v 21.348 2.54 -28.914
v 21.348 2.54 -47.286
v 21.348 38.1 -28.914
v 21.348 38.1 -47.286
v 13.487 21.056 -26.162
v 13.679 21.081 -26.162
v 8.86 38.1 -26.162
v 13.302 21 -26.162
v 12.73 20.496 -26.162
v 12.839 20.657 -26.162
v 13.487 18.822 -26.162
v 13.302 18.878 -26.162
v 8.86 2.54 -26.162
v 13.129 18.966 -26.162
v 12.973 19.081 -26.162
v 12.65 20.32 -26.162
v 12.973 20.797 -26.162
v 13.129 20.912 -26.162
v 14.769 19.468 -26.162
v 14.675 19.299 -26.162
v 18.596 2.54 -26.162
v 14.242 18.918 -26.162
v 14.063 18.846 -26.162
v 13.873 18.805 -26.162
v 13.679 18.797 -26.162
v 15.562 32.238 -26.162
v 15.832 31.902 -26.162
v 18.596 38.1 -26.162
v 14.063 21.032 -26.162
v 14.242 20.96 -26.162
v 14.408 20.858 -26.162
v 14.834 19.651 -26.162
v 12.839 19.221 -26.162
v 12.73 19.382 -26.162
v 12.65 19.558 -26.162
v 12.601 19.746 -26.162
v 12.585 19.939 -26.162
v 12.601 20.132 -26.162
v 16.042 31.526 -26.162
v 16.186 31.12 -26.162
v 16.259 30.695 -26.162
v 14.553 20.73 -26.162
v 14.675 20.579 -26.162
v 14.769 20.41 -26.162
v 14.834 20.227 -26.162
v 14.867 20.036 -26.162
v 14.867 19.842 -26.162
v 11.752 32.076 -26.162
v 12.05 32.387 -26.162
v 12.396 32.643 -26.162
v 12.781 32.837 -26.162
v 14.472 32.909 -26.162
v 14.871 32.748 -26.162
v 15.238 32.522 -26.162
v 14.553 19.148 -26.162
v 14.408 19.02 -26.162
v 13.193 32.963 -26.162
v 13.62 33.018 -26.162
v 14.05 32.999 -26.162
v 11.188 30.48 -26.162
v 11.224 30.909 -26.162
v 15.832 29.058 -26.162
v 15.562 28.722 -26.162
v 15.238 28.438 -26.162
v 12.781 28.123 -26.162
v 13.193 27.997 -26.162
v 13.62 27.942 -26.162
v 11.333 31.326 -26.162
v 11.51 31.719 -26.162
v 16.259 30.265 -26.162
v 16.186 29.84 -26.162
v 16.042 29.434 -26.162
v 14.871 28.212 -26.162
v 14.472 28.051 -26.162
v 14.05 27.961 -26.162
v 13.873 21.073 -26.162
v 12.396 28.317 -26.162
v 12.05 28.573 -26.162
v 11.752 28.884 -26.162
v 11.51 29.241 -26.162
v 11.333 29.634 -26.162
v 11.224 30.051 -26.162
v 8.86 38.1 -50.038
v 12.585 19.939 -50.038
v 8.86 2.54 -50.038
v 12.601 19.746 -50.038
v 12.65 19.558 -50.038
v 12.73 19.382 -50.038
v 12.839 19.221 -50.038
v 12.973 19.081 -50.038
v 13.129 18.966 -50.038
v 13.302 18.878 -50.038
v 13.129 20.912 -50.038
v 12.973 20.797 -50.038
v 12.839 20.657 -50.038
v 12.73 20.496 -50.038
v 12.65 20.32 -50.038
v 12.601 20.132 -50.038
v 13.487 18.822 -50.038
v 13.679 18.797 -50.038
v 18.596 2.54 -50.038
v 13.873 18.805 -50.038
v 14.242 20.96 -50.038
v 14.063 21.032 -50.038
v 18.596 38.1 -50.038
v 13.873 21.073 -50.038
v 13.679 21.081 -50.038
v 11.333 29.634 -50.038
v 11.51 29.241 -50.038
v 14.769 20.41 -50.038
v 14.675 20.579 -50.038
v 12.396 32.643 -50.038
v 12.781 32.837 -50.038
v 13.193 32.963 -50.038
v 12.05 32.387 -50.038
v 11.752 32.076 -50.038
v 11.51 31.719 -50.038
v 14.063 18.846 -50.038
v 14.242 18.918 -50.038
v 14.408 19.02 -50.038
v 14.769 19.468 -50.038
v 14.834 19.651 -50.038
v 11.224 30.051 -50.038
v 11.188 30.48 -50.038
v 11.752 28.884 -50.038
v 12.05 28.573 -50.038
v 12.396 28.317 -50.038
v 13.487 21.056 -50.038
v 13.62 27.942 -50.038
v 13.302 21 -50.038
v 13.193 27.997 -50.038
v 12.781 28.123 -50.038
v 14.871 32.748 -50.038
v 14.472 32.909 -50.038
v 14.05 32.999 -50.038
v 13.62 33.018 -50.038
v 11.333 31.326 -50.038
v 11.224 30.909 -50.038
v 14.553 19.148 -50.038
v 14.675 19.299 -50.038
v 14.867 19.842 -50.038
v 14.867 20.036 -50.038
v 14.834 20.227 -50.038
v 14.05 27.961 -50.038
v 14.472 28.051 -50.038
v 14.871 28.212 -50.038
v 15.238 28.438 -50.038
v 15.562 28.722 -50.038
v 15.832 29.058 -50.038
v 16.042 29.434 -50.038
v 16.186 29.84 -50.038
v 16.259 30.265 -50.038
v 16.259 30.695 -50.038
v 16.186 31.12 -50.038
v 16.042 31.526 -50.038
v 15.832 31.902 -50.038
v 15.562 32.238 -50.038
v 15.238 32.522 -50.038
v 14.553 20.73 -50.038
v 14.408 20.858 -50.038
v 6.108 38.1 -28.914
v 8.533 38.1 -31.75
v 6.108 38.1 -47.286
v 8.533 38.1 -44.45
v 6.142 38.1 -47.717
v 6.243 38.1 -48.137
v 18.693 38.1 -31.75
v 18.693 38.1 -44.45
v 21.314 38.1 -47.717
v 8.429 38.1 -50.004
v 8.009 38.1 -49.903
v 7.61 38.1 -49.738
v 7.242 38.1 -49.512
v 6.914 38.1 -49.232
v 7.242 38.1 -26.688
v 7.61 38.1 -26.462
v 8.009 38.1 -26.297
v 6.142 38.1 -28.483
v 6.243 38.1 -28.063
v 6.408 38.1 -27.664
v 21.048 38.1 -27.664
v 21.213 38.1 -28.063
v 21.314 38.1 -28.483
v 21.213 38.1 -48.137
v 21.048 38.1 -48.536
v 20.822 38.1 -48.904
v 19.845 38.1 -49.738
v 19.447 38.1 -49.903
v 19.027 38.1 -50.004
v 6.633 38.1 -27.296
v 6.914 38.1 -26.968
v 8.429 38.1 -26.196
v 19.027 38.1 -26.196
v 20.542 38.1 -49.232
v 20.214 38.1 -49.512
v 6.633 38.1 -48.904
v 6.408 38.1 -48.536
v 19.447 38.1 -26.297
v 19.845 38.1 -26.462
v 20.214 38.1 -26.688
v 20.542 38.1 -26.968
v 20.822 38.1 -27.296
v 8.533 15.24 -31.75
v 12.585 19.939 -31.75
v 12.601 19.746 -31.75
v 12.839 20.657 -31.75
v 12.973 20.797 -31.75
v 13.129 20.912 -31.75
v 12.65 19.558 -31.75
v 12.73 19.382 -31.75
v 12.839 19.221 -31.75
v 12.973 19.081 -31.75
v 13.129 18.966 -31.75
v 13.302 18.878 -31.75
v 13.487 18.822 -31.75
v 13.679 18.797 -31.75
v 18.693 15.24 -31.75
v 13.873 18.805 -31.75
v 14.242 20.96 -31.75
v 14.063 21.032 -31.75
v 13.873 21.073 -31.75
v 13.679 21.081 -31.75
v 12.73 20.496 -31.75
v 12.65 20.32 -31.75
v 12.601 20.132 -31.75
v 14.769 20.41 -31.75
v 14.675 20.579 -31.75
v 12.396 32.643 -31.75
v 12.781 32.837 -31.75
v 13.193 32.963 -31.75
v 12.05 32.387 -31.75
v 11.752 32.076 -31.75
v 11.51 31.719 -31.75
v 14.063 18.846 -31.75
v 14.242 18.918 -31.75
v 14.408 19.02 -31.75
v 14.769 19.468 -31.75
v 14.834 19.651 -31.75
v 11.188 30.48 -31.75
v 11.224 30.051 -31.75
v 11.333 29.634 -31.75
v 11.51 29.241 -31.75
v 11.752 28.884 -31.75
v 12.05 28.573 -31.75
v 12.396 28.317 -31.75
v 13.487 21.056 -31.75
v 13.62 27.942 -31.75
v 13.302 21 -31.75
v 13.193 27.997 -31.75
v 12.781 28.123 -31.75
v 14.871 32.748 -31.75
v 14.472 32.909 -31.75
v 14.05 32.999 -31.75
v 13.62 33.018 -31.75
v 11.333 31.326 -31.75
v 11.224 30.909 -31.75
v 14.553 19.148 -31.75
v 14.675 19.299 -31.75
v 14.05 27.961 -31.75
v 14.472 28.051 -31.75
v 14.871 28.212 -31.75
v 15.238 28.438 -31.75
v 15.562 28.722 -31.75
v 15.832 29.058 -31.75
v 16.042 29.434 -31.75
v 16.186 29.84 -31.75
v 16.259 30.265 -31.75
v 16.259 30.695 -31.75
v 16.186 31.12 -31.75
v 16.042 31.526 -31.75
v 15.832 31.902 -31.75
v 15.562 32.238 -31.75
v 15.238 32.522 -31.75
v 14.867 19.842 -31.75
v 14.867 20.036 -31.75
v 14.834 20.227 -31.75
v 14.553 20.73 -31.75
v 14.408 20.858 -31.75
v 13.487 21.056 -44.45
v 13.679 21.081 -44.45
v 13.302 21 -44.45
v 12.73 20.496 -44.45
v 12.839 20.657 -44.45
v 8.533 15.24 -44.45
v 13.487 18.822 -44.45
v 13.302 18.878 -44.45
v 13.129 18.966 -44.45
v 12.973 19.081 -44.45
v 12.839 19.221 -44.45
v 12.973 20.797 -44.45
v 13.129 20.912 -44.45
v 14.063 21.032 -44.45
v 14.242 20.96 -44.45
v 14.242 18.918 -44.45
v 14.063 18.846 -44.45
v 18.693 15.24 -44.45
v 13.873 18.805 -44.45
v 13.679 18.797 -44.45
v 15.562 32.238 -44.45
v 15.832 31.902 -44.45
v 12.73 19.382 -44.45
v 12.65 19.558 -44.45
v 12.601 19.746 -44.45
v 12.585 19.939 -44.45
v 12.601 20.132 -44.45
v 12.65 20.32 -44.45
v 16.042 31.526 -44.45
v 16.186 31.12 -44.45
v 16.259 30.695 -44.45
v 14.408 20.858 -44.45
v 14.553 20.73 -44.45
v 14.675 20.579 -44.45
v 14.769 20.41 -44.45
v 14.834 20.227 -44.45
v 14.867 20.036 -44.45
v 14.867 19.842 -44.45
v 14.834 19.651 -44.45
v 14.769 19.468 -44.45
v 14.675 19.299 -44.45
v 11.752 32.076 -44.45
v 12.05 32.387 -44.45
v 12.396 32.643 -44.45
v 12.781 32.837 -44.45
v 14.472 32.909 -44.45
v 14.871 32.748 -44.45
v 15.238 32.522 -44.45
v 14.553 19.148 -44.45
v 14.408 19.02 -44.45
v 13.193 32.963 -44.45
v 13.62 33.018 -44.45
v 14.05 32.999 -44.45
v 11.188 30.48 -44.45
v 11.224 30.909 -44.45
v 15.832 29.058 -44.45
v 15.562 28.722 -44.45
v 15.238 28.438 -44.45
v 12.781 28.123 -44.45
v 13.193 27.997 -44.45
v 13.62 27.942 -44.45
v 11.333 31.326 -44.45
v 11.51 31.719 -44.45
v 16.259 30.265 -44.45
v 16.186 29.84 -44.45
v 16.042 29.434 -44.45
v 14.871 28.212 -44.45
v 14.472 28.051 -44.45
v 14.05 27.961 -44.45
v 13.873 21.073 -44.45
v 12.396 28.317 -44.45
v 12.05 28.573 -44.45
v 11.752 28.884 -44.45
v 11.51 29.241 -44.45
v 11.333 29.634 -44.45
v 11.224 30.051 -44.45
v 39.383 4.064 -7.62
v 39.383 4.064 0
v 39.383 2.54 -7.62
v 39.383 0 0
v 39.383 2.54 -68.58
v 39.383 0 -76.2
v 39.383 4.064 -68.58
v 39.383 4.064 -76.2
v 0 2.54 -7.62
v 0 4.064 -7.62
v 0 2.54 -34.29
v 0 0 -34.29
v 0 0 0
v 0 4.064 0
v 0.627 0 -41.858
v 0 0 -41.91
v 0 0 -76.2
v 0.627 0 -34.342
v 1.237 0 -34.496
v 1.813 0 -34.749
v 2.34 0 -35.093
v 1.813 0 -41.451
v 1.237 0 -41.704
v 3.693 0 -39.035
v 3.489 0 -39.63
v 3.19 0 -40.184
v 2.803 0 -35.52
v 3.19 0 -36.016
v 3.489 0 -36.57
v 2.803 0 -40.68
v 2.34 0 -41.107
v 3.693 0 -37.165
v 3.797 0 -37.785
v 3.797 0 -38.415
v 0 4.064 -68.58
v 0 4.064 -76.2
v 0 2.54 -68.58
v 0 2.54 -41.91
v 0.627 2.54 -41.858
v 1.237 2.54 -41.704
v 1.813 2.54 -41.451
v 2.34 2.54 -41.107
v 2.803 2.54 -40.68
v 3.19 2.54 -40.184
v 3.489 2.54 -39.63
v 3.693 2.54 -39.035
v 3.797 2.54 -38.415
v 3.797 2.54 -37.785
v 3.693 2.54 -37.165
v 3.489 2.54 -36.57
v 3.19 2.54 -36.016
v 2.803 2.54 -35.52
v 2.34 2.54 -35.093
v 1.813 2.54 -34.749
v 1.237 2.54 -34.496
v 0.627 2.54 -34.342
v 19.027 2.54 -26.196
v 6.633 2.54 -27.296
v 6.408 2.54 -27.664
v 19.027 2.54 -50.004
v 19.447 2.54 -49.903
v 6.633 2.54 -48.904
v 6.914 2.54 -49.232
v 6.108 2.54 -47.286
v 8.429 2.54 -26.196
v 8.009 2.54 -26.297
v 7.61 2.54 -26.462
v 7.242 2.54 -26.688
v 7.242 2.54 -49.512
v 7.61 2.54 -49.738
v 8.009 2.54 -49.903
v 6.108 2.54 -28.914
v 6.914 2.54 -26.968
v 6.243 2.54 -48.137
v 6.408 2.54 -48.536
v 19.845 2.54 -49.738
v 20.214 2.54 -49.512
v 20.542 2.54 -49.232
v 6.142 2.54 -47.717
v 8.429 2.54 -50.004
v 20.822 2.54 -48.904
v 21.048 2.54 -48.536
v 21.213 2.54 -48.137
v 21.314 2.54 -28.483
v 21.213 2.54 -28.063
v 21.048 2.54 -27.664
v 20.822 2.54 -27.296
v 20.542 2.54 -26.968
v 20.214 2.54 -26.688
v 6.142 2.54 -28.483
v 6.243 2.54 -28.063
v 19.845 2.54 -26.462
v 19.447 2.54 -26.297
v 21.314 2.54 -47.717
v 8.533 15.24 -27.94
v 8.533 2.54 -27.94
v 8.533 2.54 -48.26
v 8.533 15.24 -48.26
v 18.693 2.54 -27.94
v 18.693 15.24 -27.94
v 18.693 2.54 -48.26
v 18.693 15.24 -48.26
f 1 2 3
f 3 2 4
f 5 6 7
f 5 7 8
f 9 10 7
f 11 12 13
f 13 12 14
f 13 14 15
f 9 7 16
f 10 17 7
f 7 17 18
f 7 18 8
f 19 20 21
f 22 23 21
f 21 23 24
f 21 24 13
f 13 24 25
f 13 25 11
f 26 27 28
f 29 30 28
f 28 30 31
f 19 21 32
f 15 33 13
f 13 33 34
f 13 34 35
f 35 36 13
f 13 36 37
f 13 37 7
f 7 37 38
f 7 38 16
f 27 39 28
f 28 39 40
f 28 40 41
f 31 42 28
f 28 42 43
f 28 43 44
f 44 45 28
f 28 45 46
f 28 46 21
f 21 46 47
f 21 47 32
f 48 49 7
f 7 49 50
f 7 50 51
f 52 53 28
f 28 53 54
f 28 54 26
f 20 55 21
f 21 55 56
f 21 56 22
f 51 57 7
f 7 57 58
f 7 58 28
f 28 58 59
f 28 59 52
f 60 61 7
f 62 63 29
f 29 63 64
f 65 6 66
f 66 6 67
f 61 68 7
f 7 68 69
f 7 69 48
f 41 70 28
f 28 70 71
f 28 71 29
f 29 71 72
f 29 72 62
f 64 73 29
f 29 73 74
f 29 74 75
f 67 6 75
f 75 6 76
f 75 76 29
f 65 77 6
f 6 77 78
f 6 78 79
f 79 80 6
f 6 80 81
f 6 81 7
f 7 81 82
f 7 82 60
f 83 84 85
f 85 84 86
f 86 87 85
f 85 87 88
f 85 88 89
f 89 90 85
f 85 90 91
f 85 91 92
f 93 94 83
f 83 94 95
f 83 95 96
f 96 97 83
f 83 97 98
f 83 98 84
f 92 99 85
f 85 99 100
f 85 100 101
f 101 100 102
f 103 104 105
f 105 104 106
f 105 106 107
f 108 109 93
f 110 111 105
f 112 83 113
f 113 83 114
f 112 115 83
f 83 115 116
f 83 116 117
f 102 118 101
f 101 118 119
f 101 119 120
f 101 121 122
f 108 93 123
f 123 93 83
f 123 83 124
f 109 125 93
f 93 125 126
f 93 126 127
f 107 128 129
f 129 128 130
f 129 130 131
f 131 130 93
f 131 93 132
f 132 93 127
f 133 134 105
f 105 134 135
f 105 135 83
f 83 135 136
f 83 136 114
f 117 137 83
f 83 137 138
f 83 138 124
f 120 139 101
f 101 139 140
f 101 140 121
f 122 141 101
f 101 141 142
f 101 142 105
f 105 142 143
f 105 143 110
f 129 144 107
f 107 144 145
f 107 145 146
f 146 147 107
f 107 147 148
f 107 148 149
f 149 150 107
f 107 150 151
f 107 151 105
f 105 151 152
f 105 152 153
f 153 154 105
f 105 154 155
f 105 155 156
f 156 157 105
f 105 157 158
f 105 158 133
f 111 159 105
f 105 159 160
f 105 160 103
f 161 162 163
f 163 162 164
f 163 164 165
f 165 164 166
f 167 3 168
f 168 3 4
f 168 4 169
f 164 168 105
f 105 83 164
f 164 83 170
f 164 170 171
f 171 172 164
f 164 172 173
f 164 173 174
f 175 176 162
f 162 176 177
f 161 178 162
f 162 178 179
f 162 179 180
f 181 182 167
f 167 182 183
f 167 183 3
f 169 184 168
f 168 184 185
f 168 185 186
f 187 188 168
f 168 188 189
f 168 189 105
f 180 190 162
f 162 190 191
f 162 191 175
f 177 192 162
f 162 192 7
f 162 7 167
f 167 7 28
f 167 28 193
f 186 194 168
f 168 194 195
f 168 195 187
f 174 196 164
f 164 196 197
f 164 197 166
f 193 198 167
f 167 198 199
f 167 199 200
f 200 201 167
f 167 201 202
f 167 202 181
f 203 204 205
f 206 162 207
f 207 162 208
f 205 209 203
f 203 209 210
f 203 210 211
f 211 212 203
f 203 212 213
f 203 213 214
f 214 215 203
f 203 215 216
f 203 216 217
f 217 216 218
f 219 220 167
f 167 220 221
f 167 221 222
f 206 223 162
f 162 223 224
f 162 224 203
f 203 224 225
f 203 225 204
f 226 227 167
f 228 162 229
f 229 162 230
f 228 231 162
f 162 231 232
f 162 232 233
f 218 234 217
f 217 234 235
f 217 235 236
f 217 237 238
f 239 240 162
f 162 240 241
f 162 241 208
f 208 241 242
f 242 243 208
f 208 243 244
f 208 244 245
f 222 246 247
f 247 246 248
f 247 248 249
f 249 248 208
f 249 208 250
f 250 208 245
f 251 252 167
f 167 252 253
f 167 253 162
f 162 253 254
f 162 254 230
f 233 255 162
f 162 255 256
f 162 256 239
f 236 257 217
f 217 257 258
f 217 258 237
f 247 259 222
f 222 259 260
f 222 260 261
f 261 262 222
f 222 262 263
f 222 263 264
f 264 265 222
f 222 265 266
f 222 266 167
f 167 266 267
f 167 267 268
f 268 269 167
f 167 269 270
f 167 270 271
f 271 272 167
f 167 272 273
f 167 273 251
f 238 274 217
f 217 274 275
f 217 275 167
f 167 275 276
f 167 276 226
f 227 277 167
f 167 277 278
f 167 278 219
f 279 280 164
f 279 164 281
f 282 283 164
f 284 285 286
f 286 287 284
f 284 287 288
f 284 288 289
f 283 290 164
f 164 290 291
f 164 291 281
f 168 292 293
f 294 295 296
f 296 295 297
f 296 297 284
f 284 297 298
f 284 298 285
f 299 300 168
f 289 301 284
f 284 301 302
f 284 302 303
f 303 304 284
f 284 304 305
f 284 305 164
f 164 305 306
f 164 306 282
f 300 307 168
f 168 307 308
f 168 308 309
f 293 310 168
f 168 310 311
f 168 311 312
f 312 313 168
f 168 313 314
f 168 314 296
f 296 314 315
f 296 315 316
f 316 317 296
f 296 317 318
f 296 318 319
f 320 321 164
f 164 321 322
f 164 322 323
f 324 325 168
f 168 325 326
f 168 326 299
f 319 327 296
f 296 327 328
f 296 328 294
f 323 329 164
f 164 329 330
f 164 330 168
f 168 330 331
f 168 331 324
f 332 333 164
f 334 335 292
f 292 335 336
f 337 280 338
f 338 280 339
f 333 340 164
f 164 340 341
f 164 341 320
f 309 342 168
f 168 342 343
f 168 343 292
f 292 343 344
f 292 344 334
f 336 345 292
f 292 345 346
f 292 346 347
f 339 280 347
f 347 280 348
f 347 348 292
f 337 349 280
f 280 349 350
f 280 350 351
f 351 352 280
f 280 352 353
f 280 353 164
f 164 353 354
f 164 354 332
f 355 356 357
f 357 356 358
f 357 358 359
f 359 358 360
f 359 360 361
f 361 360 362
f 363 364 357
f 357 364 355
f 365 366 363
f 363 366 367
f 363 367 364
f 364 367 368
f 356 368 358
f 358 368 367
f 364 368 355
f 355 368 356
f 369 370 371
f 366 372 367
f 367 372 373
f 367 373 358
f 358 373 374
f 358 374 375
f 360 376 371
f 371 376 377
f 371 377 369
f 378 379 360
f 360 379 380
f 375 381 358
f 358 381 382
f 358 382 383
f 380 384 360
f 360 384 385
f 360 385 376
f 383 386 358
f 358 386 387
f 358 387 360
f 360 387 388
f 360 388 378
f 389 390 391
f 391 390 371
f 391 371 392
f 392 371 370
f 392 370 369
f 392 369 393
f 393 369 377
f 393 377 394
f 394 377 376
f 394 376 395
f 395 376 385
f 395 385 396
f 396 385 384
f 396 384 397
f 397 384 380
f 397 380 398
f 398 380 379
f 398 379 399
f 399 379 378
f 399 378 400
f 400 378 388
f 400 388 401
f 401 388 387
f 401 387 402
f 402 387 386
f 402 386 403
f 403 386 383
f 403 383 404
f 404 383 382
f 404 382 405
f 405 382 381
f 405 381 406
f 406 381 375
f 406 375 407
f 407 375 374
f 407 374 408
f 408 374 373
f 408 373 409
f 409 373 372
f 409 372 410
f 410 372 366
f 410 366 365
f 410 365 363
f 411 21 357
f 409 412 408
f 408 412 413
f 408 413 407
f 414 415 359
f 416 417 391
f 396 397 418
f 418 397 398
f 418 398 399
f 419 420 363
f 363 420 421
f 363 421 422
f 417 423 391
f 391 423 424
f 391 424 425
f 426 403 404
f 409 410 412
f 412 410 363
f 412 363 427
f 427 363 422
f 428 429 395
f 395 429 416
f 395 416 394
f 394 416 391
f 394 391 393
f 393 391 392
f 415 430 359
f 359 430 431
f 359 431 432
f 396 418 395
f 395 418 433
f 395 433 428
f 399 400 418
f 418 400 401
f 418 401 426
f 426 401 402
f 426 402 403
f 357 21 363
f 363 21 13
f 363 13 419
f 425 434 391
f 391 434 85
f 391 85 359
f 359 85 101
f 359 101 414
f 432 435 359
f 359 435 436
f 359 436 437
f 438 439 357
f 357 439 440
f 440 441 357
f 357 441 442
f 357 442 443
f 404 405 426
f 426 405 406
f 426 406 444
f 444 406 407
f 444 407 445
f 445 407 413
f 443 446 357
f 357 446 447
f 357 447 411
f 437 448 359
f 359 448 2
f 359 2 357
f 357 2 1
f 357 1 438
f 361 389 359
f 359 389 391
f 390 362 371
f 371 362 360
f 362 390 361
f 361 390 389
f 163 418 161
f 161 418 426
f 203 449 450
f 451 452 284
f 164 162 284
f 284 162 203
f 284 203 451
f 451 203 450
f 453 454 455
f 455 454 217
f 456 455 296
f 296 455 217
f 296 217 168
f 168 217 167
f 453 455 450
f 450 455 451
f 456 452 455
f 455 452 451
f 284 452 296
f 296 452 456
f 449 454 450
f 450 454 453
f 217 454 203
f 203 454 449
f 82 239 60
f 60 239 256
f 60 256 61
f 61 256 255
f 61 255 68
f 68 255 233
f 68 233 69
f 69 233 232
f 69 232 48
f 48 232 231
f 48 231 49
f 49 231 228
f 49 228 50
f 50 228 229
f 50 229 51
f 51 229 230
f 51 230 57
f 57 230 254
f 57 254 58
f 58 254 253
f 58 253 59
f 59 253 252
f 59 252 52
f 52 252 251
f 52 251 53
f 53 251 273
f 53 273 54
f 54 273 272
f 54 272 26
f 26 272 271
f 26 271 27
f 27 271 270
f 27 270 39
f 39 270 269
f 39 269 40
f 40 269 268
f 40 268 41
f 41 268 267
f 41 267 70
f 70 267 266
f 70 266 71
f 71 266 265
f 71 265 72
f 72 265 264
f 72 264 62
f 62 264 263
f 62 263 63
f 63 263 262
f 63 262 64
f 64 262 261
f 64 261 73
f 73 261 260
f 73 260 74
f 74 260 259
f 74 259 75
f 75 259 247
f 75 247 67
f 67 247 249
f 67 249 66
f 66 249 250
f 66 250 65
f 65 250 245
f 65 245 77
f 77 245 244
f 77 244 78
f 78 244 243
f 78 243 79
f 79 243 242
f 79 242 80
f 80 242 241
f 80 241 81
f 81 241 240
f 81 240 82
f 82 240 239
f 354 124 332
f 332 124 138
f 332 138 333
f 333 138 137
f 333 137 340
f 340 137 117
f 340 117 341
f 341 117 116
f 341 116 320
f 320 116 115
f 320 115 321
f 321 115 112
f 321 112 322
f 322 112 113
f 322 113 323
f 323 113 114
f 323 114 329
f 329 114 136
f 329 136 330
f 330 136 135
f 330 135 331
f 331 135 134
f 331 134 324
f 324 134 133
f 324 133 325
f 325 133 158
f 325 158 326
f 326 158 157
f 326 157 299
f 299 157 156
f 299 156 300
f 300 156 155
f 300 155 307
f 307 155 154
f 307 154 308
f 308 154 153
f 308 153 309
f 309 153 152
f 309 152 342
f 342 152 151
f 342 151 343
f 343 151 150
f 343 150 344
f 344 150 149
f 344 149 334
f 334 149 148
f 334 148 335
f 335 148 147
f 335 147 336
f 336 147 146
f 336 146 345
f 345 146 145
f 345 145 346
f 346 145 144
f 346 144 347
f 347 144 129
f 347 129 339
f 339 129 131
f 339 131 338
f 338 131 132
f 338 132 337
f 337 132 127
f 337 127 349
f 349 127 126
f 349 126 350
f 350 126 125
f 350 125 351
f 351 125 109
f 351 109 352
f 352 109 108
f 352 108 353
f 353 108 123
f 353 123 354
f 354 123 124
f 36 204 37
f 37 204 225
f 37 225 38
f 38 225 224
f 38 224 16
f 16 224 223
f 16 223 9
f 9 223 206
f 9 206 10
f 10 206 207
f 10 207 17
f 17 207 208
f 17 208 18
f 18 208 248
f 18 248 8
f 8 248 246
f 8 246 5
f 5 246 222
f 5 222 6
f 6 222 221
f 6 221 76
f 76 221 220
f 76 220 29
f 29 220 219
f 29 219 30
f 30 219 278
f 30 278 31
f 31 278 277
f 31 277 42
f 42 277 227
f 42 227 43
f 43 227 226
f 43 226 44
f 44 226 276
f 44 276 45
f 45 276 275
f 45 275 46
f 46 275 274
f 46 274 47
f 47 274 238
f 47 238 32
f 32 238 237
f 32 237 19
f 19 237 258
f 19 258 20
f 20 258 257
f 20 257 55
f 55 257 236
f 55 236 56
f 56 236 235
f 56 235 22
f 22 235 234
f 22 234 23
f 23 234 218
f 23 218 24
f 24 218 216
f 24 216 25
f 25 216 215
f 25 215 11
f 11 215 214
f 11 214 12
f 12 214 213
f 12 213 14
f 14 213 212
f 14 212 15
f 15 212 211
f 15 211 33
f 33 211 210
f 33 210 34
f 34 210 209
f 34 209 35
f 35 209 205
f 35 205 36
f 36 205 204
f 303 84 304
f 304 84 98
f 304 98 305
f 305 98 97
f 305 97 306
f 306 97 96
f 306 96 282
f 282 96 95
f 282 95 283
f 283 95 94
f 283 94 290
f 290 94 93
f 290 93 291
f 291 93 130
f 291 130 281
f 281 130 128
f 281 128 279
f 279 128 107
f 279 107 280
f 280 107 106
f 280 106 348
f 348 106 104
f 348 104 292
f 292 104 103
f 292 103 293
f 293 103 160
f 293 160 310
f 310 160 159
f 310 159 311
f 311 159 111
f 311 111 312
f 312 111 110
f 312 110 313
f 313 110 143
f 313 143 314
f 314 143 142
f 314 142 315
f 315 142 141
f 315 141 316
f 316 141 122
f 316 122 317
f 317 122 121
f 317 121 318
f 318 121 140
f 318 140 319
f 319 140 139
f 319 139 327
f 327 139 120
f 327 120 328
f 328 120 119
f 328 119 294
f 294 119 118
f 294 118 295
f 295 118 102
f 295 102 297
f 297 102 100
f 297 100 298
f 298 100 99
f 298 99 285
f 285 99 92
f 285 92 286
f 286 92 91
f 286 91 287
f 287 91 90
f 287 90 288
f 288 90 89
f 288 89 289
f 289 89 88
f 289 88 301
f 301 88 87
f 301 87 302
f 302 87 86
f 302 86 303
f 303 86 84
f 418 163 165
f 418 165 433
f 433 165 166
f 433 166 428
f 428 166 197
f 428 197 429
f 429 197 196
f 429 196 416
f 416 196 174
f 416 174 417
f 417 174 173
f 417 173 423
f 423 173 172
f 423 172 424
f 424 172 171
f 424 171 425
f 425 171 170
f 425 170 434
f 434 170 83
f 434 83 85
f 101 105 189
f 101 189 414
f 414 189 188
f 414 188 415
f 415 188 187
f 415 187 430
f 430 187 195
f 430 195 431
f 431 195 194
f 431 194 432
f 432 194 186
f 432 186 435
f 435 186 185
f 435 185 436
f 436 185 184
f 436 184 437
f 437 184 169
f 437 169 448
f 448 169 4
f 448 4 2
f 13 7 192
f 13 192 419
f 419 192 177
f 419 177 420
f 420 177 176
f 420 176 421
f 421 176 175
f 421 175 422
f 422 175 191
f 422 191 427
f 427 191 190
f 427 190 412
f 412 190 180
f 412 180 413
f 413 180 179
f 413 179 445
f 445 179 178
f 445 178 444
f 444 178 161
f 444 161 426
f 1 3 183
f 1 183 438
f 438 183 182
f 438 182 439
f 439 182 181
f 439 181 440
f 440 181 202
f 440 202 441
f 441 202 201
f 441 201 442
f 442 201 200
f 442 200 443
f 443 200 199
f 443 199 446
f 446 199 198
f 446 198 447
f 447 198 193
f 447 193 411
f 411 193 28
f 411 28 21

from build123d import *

# Parameters (mm, degrees)
SKETCH2_W             = 39.3827
SKETCH2_H             = 7.62
BOSS_EXTRUDE2_DEPTH   = 4.064
BOSS_EXTRUDE2_2_DEPTH = 4.064
BOSS_EXTRUDE3_DEPTH   = 2.54
BOSS_EXTRUDE4_DEPTH   = 38.1
SKETCH4_W             = 10.16
SKETCH4_H             = 3.81
CUT_EXTRUDE2_DEPTH    = 12.7
CUT_EXTRUDE3_REACH    = 76.205
SKETCH5_R             = 2.54
SKETCH5_R_2           = 1.143
CUT_EXTRUDE5_DEPTH    = 35.56


with BuildPart() as part:
    # Sketch2 → Boss-Extrude2 (new body)
    with BuildSketch(Plane(origin=(0, 0, 0), x_dir=(1, 0, 0), z_dir=(0, 1, 0))):
        with Locations((19.69135, 3.81)):
            Rectangle(SKETCH2_W, SKETCH2_H)
    extrude(amount=BOSS_EXTRUDE2_DEPTH)



with BuildPart() as body_2:
    # Sketch2 → Boss-Extrude2 2 (new body)
    with BuildSketch(Plane(origin=(0, 0, 0), x_dir=(1, 0, 0), z_dir=(0, 1, 0))):
        with Locations((19.69135, 72.39)):
            Rectangle(SKETCH2_W, SKETCH2_H)
    extrude(amount=BOSS_EXTRUDE2_2_DEPTH)


with BuildPart() as part_1:
    add(part.part)

    add(body_2.part)  # Boss-Extrude3 merges body 2
    # Sketch2<3> → Boss-Extrude3 (add)
    with BuildSketch(Plane(origin=(0, 0, 0), x_dir=(1, 0, 0), z_dir=(0, 1, 0))):
        with BuildLine():
            Line((0, 34.29), (0, 7.62))
            Line((0, 7.62), (39.3827, 7.62))
            Line((39.3827, 7.62), (39.3827, 68.58))
            Line((39.3827, 68.58), (0, 68.58))
            Line((0, 68.58), (0, 41.91))
            ThreePointArc((0, 41.91), (3.81, 38.1), (0, 34.29))
        make_face()
    extrude(amount=BOSS_EXTRUDE3_DEPTH)

    # Sketch2<8> → Boss-Extrude4 (add)
    with BuildSketch(Plane(origin=(0, 0, 0), x_dir=(1, 0, 0), z_dir=(0, 1, 0))):
        Polygon((6.107856951, 50.038), (6.107856951, 38.1), (6.107856951, 26.162), (21.347856951, 26.162), (21.347856951, 50.038), align=None)
        Polygon((8.533414456, 31.75), (8.533414456, 38.1), (8.533414456, 44.45), (18.693414456, 44.45), (18.693414456, 31.75), align=None, mode=Mode.SUBTRACT)
    extrude(amount=BOSS_EXTRUDE4_DEPTH)

    # Sketch4 → Cut-Extrude2 (cut)
    with BuildSketch(Plane(origin=(0, 2.54, 0), x_dir=(1, 0, 0), z_dir=(0, 1, 0))):
        with Locations((13.613414456, 46.355)):
            Rectangle(SKETCH4_W, SKETCH4_H)
        with Locations((13.613414456, 29.845)):
            Rectangle(SKETCH4_W, SKETCH4_H)
    extrude(amount=CUT_EXTRUDE2_DEPTH, mode=Mode.SUBTRACT)

    # Cut-Extrude3: up to this face of the body (flat: up to its plane)
    cut_extrude3_end = Plane(part_1.part.faces().sort_by_distance((13.727856951, 20.32, -26.162))[0])
    # Sketch5 → Cut-Extrude3 (cut, up to the picked face)
    with BuildSketch(Plane(origin=(0, 0, -50.038), x_dir=(-1, 0, 0), z_dir=(0, 0, -1)), mode=Mode.PRIVATE) as cut_extrude3_sk1:
        with Locations((-13.727856951, 30.48)):
            Circle(SKETCH5_R)
    cut_extrude3_tool1 = split(extrude(cut_extrude3_sk1.sketch, amount=-CUT_EXTRUDE3_REACH, mode=Mode.PRIVATE), bisect_by=cut_extrude3_end, keep=Keep.BOTH, mode=Mode.PRIVATE)
    # Sketch5 → Cut-Extrude3 (cut, up to the picked face)
    with BuildSketch(Plane(origin=(0, 0, -50.038), x_dir=(-1, 0, 0), z_dir=(0, 0, -1)), mode=Mode.PRIVATE) as cut_extrude3_sk2:
        with Locations((-13.727856951, 19.939)):
            Circle(SKETCH5_R_2)
    cut_extrude3_tool2 = split(extrude(cut_extrude3_sk2.sketch, amount=-CUT_EXTRUDE3_REACH, mode=Mode.PRIVATE), bisect_by=cut_extrude3_end, keep=Keep.BOTH, mode=Mode.PRIVATE)
    add(cut_extrude3_tool1.solids().sort_by(Axis((13.727857, 30.48, -50.038), (0, 0, 1)))[0], mode=Mode.SUBTRACT)
    add(cut_extrude3_tool2.solids().sort_by(Axis((13.727857, 19.939, -50.038), (0, 0, 1)))[0], mode=Mode.SUBTRACT)

    # Sketch6 → Cut-Extrude5 (cut)
    with BuildSketch(Plane(origin=(0, 38.1, 0), x_dir=(1, 0, 0), z_dir=(0, 1, 0))):
        with BuildLine():
            ThreePointArc((6.107856951, 47.286333333), (6.913801458, 49.232055493), (8.859523617, 50.038))
            Line((8.859523617, 50.038), (6.107856951, 50.038))
            Line((6.107856951, 50.038), (6.107856951, 47.286333333))
        make_face()
        with BuildLine():
            ThreePointArc((18.596190284, 50.038), (20.541912444, 49.232055493), (21.347856951, 47.286333333))
            Line((21.347856951, 47.286333333), (21.347856951, 50.038))
            Line((21.347856951, 50.038), (18.596190284, 50.038))
        make_face()
        with BuildLine():
            Line((6.107856951, 26.162), (8.859523617, 26.162))
            ThreePointArc((8.859523617, 26.162), (6.913801458, 26.967944507), (6.107856951, 28.913666667))
            Line((6.107856951, 28.913666667), (6.107856951, 26.162))
        make_face()
        with BuildLine():
            Line((21.347856951, 26.162), (21.347856951, 28.913666667))
            ThreePointArc((21.347856951, 28.913666667), (20.541912444, 26.967944507), (18.596190284, 26.162))
            Line((18.596190284, 26.162), (21.347856951, 26.162))
        make_face()
    extrude(amount=-CUT_EXTRUDE5_DEPTH, mode=Mode.SUBTRACT)


solid = part_1.part
